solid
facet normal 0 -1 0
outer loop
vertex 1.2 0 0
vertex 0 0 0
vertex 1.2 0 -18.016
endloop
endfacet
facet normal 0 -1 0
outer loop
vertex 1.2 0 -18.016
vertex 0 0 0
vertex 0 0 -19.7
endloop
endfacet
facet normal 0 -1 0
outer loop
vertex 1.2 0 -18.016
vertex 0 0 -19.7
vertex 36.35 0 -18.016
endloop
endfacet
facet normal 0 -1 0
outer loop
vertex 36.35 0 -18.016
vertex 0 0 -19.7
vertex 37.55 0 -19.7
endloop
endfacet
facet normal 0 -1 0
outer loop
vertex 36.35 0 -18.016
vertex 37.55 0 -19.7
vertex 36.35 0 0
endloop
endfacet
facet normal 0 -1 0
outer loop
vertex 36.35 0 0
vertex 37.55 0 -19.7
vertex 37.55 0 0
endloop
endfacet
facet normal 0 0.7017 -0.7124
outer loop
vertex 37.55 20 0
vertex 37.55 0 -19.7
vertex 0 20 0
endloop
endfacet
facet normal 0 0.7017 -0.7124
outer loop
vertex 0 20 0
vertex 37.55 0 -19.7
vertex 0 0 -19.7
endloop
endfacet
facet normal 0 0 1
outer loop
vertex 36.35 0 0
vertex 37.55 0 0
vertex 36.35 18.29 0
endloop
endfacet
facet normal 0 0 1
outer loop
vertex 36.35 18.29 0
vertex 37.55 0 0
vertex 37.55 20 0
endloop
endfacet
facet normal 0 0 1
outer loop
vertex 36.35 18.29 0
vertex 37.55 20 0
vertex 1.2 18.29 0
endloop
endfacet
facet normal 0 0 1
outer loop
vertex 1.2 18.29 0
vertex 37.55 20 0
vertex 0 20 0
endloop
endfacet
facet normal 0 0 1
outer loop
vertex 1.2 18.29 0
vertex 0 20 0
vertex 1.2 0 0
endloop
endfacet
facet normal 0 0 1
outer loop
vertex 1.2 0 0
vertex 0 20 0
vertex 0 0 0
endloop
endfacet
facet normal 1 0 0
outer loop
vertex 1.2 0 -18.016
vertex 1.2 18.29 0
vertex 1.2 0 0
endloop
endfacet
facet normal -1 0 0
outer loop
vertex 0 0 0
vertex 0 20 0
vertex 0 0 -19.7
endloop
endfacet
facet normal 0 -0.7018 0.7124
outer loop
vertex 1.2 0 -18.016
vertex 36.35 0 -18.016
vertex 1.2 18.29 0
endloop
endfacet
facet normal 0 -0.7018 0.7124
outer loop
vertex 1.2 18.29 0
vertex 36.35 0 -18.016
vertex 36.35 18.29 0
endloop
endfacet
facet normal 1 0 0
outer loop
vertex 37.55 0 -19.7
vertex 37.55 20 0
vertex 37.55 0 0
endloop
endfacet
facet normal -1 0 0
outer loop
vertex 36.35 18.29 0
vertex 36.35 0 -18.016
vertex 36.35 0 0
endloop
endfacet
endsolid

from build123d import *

# Parameters (mm, degrees)
P_IDAT_VYSUNUT_M1_DEPTH  = 1.2
SKICA2_W                 = 35.15
SKICA2_H                 = 28.072940708
P_IDAT_VYSUNUT_M2_DEPTH  = 1.2
LINPOLE1_COUNT           = 2
LINPOLE1_PITCH           = 36.35
SKICA3_W                 = 2.46853356
SKICA3_H                 = 4.337658353
SKICA3_W_2               = 5.363858138
SKICA3_H_2               = 3.395185275
ODEBRAT_VYSUNUT_M1_DEPTH = 47.88381917


with BuildPart() as part:
    # Skica1 → Přidat vysunutím1 (new body)
    with BuildSketch(Plane(origin=(0, 0, 0), x_dir=(0, 0, -1), z_dir=(1, 0, 0))):
        Polygon((0, 0), (0, 20), (19.7, 0), align=None)
    p_idat_vysunut_m1 = extrude(amount=P_IDAT_VYSUNUT_M1_DEPTH)

    # Skica2 → Přidat vysunutím2 (add)
    with BuildSketch(Plane(origin=(0, 9.848875128, -9.998857998), x_dir=(-1, 0, 0), z_dir=(0, 0.7017433693479112, -0.7124298165968641))):
        with Locations((-18.775, 0.212125978)):
            Rectangle(SKICA2_W, SKICA2_H)
    extrude(amount=-P_IDAT_VYSUNUT_M2_DEPTH)

    # LinPole1: Přidat vysunutím1 ×2
    with Locations(*[(i * LINPOLE1_PITCH, 0, 0) for i in range(1, LINPOLE1_COUNT)]):
        add(p_idat_vysunut_m1)

    # Skica3 → Odebrat vysunutím1 (cut, through all)
    with BuildSketch(Plane(origin=(37.55, 0, 0), x_dir=(0, 0, -1), z_dir=(1, 0, 0))):
        with Locations((-1.23426678, 19.003869159)):
            Rectangle(SKICA3_W, SKICA3_H)
        with Locations((19.532023183, -1.697592638)):
            Rectangle(SKICA3_W_2, SKICA3_H_2)
    extrude(amount=-ODEBRAT_VYSUNUT_M1_DEPTH, mode=Mode.SUBTRACT)


solid = part.part
